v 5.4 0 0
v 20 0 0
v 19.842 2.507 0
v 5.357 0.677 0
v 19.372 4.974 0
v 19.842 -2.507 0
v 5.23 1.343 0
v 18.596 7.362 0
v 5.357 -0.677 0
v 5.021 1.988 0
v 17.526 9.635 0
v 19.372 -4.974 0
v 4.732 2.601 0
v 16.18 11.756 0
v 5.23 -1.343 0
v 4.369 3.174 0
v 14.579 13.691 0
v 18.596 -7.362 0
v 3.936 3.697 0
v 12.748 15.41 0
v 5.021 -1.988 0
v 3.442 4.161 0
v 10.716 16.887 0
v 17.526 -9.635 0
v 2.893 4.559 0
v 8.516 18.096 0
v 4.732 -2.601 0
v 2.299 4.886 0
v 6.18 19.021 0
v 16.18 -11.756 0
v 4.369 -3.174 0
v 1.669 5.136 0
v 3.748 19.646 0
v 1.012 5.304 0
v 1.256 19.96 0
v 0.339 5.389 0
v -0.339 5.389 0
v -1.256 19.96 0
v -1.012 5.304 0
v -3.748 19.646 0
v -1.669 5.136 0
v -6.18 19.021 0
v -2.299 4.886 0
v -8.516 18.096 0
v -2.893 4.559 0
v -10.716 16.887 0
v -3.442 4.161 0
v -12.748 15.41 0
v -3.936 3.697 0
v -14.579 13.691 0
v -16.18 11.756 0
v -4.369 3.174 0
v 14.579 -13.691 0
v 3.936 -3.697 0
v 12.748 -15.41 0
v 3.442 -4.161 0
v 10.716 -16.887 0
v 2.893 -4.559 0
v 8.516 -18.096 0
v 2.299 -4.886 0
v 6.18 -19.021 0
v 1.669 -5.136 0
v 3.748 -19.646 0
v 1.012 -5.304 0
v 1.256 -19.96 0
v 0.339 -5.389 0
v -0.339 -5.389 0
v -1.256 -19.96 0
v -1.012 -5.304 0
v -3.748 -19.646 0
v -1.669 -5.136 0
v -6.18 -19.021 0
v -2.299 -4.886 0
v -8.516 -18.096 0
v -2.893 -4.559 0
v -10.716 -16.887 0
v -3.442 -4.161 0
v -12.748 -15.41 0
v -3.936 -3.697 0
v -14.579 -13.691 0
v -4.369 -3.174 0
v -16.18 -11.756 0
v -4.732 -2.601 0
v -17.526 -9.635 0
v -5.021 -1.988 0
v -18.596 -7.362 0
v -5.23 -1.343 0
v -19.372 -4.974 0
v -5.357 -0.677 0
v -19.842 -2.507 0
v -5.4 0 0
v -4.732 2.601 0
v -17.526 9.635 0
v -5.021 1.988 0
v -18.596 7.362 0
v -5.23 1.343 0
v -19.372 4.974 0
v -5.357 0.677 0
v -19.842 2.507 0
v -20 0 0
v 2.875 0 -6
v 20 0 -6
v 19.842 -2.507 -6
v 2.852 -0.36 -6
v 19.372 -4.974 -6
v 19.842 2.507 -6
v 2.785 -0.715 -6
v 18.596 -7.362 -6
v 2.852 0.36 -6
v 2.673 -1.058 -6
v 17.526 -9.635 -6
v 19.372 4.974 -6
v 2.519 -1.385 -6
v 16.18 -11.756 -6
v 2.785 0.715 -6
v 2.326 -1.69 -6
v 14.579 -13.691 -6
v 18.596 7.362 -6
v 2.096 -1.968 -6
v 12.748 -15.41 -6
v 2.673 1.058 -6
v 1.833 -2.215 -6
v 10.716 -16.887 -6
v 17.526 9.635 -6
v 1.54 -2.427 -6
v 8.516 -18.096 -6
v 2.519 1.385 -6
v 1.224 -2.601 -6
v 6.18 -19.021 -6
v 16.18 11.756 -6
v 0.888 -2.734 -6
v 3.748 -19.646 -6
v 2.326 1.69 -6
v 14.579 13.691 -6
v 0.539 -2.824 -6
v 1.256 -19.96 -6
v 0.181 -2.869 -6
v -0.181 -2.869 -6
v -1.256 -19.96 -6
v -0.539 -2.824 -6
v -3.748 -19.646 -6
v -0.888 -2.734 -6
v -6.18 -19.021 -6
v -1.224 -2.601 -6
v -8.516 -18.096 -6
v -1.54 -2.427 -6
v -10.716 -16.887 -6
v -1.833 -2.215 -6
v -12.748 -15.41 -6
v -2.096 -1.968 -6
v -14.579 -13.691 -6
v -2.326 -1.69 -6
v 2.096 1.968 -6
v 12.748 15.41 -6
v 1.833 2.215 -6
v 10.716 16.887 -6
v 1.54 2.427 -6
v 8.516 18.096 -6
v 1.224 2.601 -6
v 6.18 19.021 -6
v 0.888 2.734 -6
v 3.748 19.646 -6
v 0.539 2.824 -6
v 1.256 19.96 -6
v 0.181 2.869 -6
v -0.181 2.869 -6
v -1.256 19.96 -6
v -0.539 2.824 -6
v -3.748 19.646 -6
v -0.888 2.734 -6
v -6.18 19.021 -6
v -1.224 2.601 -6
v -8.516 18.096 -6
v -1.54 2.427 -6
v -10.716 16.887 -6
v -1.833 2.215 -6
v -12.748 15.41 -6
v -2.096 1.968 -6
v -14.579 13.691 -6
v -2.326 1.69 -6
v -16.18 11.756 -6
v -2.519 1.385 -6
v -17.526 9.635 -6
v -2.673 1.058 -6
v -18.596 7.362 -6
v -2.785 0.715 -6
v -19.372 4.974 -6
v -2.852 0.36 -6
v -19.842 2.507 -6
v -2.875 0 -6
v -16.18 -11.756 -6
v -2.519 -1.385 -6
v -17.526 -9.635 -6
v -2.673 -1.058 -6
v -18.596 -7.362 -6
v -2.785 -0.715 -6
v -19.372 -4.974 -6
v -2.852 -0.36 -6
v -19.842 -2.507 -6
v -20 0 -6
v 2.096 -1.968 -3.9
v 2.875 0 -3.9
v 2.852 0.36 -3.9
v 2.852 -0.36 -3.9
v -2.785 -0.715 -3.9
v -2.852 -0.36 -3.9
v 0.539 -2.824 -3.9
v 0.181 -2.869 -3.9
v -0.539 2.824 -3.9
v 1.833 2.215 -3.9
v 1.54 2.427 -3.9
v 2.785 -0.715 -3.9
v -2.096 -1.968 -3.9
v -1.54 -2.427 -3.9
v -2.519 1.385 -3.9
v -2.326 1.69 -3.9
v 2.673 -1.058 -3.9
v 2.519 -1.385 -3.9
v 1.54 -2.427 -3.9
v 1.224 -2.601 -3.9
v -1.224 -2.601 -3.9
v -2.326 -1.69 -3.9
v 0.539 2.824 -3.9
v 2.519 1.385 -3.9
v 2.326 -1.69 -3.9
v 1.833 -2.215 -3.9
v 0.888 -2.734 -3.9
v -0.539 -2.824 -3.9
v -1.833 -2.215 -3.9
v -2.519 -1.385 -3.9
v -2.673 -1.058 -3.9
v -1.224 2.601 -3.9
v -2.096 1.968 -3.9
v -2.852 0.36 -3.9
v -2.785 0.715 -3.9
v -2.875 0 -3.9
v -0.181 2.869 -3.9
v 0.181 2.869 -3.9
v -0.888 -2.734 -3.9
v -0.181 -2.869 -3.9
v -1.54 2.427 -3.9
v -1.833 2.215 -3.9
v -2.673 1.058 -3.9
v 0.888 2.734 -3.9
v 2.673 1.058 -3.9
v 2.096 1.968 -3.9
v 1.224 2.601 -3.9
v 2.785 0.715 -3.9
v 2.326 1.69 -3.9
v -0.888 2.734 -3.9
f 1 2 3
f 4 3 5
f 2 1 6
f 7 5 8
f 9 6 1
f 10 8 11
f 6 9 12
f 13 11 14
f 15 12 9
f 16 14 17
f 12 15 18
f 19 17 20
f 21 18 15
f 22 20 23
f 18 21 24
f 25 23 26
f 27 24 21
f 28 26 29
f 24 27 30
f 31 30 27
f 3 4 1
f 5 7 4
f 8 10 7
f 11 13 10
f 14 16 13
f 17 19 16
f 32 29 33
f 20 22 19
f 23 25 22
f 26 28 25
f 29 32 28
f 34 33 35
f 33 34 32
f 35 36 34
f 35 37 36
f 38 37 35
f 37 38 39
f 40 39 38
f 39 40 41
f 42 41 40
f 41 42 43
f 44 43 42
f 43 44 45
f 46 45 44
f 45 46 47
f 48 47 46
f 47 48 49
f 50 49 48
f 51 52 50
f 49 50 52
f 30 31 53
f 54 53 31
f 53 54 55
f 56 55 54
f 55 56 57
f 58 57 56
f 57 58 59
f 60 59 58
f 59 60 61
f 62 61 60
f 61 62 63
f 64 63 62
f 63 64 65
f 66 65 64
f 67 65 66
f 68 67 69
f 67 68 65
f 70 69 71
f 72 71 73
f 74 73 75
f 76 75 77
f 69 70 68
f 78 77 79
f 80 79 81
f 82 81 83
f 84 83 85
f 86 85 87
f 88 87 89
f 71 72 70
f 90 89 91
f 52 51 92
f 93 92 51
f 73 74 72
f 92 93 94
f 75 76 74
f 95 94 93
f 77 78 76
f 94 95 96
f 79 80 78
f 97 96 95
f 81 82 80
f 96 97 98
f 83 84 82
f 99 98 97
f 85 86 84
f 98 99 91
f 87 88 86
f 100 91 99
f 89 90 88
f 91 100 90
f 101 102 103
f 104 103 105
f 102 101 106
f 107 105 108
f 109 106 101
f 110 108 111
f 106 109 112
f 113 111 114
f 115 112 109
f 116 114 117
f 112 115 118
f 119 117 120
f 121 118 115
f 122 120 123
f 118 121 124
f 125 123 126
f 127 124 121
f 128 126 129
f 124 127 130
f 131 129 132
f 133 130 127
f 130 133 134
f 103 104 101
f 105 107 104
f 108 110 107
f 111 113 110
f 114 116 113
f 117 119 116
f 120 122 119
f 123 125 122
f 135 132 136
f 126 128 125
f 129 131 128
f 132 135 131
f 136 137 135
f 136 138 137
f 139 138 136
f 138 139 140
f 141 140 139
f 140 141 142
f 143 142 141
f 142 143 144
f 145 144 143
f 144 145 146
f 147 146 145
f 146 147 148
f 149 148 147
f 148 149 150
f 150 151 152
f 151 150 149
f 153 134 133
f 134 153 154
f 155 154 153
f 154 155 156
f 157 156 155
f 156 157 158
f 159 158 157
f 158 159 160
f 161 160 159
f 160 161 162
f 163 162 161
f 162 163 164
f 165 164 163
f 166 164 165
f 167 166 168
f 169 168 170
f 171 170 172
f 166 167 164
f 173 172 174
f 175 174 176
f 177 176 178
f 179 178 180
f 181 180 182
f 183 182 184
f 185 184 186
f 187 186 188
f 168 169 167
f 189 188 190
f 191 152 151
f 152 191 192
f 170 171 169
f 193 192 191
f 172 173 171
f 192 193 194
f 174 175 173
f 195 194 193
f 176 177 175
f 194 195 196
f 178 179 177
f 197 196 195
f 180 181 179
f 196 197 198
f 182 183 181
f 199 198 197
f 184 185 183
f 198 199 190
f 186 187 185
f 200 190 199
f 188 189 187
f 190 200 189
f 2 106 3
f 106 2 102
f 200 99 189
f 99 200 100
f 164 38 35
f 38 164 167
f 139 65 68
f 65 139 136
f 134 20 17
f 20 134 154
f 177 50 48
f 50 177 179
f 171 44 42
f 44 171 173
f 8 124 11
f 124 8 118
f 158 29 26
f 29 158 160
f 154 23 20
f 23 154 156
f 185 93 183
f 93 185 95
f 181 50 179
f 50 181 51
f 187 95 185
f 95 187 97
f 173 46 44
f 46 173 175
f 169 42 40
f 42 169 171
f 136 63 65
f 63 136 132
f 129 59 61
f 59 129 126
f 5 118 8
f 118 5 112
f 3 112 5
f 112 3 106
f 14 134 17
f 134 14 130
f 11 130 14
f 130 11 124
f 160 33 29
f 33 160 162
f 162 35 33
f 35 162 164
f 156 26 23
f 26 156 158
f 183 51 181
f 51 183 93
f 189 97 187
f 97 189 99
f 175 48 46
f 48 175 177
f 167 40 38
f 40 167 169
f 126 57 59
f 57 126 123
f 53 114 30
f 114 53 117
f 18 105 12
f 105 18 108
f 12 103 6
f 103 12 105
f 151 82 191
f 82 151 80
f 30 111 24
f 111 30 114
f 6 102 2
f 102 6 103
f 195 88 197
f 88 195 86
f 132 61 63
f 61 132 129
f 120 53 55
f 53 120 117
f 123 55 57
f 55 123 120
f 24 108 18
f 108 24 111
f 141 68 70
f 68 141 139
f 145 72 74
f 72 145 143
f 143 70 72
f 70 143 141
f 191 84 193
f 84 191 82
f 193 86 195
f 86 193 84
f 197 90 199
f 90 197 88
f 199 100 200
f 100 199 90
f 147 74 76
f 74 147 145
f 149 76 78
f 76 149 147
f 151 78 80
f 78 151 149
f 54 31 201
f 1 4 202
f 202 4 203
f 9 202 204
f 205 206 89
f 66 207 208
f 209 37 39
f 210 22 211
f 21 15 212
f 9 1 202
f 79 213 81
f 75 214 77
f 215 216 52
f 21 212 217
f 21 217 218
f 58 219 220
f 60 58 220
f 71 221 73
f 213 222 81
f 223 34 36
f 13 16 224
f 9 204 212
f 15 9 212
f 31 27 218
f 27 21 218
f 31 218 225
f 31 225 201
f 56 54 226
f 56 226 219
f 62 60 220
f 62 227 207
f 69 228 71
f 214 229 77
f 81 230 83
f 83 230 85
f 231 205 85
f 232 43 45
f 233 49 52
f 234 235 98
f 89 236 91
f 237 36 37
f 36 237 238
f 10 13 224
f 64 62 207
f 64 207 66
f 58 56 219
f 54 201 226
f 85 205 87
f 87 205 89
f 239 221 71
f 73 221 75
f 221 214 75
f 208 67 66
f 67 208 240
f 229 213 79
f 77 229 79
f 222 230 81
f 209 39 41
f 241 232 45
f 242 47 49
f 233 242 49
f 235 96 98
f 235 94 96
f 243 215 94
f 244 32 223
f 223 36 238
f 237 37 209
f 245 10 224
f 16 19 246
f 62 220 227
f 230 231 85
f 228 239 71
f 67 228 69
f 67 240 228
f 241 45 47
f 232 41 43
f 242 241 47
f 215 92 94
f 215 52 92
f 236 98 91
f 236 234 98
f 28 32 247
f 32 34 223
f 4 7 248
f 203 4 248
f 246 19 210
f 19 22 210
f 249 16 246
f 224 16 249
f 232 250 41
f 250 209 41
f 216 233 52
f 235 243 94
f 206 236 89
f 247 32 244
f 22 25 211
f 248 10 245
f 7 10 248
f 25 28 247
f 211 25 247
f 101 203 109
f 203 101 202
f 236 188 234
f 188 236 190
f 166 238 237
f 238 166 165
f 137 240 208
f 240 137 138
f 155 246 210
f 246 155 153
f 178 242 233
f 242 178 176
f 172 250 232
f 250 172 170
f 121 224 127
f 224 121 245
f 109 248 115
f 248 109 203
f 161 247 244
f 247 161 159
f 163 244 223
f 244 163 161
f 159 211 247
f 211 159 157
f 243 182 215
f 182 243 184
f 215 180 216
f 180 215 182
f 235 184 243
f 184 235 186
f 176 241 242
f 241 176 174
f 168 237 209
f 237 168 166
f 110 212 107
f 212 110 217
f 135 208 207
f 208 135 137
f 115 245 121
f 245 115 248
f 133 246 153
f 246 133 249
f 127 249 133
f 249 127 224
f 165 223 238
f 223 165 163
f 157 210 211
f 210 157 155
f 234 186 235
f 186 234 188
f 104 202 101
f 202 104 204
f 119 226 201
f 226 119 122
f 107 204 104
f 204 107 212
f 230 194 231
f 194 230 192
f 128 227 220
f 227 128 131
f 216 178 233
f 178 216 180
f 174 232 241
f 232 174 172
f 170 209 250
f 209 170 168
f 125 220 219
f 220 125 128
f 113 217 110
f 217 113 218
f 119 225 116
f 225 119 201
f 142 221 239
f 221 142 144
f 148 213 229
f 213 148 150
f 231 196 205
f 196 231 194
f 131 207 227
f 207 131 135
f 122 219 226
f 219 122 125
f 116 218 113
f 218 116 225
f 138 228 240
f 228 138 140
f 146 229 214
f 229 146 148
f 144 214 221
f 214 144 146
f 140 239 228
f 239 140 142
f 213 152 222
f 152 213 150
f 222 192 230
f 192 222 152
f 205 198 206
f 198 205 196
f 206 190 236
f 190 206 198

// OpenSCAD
$fn = 50;


difference() {
	union() {
		translate(v = [0, 0, -6.0000000000]) {
			cylinder(h = 6, r = 10.0000000000);
		}
		translate(v = [0, 0, -6.0000000000]) {
			cylinder(h = 6, r = 20.0000000000);
		}
	}
	union() {
		translate(v = [0, 0, 0]) {
			rotate(a = [0, 0, 0]) {
				difference() {
					union() {
						#translate(v = [0, 0, -6.0000000000]) {
							cylinder(h = 6, r = 2.6000000000);
						}
						#translate(v = [0, 0, -3.9000000000]) {
							cylinder(h = 3.9000000000, r1 = 2.8750000000, r2 = 5.4000000000);
						}
						#translate(v = [0, 0, -6.0000000000]) {
							cylinder(h = 6, r = 2.8750000000);
						}
						#translate(v = [0, 0, -6.0000000000]) {
							cylinder(h = 6, r = 2.6000000000);
						}
					}
					union();
				}
			}
		}
	}
}
